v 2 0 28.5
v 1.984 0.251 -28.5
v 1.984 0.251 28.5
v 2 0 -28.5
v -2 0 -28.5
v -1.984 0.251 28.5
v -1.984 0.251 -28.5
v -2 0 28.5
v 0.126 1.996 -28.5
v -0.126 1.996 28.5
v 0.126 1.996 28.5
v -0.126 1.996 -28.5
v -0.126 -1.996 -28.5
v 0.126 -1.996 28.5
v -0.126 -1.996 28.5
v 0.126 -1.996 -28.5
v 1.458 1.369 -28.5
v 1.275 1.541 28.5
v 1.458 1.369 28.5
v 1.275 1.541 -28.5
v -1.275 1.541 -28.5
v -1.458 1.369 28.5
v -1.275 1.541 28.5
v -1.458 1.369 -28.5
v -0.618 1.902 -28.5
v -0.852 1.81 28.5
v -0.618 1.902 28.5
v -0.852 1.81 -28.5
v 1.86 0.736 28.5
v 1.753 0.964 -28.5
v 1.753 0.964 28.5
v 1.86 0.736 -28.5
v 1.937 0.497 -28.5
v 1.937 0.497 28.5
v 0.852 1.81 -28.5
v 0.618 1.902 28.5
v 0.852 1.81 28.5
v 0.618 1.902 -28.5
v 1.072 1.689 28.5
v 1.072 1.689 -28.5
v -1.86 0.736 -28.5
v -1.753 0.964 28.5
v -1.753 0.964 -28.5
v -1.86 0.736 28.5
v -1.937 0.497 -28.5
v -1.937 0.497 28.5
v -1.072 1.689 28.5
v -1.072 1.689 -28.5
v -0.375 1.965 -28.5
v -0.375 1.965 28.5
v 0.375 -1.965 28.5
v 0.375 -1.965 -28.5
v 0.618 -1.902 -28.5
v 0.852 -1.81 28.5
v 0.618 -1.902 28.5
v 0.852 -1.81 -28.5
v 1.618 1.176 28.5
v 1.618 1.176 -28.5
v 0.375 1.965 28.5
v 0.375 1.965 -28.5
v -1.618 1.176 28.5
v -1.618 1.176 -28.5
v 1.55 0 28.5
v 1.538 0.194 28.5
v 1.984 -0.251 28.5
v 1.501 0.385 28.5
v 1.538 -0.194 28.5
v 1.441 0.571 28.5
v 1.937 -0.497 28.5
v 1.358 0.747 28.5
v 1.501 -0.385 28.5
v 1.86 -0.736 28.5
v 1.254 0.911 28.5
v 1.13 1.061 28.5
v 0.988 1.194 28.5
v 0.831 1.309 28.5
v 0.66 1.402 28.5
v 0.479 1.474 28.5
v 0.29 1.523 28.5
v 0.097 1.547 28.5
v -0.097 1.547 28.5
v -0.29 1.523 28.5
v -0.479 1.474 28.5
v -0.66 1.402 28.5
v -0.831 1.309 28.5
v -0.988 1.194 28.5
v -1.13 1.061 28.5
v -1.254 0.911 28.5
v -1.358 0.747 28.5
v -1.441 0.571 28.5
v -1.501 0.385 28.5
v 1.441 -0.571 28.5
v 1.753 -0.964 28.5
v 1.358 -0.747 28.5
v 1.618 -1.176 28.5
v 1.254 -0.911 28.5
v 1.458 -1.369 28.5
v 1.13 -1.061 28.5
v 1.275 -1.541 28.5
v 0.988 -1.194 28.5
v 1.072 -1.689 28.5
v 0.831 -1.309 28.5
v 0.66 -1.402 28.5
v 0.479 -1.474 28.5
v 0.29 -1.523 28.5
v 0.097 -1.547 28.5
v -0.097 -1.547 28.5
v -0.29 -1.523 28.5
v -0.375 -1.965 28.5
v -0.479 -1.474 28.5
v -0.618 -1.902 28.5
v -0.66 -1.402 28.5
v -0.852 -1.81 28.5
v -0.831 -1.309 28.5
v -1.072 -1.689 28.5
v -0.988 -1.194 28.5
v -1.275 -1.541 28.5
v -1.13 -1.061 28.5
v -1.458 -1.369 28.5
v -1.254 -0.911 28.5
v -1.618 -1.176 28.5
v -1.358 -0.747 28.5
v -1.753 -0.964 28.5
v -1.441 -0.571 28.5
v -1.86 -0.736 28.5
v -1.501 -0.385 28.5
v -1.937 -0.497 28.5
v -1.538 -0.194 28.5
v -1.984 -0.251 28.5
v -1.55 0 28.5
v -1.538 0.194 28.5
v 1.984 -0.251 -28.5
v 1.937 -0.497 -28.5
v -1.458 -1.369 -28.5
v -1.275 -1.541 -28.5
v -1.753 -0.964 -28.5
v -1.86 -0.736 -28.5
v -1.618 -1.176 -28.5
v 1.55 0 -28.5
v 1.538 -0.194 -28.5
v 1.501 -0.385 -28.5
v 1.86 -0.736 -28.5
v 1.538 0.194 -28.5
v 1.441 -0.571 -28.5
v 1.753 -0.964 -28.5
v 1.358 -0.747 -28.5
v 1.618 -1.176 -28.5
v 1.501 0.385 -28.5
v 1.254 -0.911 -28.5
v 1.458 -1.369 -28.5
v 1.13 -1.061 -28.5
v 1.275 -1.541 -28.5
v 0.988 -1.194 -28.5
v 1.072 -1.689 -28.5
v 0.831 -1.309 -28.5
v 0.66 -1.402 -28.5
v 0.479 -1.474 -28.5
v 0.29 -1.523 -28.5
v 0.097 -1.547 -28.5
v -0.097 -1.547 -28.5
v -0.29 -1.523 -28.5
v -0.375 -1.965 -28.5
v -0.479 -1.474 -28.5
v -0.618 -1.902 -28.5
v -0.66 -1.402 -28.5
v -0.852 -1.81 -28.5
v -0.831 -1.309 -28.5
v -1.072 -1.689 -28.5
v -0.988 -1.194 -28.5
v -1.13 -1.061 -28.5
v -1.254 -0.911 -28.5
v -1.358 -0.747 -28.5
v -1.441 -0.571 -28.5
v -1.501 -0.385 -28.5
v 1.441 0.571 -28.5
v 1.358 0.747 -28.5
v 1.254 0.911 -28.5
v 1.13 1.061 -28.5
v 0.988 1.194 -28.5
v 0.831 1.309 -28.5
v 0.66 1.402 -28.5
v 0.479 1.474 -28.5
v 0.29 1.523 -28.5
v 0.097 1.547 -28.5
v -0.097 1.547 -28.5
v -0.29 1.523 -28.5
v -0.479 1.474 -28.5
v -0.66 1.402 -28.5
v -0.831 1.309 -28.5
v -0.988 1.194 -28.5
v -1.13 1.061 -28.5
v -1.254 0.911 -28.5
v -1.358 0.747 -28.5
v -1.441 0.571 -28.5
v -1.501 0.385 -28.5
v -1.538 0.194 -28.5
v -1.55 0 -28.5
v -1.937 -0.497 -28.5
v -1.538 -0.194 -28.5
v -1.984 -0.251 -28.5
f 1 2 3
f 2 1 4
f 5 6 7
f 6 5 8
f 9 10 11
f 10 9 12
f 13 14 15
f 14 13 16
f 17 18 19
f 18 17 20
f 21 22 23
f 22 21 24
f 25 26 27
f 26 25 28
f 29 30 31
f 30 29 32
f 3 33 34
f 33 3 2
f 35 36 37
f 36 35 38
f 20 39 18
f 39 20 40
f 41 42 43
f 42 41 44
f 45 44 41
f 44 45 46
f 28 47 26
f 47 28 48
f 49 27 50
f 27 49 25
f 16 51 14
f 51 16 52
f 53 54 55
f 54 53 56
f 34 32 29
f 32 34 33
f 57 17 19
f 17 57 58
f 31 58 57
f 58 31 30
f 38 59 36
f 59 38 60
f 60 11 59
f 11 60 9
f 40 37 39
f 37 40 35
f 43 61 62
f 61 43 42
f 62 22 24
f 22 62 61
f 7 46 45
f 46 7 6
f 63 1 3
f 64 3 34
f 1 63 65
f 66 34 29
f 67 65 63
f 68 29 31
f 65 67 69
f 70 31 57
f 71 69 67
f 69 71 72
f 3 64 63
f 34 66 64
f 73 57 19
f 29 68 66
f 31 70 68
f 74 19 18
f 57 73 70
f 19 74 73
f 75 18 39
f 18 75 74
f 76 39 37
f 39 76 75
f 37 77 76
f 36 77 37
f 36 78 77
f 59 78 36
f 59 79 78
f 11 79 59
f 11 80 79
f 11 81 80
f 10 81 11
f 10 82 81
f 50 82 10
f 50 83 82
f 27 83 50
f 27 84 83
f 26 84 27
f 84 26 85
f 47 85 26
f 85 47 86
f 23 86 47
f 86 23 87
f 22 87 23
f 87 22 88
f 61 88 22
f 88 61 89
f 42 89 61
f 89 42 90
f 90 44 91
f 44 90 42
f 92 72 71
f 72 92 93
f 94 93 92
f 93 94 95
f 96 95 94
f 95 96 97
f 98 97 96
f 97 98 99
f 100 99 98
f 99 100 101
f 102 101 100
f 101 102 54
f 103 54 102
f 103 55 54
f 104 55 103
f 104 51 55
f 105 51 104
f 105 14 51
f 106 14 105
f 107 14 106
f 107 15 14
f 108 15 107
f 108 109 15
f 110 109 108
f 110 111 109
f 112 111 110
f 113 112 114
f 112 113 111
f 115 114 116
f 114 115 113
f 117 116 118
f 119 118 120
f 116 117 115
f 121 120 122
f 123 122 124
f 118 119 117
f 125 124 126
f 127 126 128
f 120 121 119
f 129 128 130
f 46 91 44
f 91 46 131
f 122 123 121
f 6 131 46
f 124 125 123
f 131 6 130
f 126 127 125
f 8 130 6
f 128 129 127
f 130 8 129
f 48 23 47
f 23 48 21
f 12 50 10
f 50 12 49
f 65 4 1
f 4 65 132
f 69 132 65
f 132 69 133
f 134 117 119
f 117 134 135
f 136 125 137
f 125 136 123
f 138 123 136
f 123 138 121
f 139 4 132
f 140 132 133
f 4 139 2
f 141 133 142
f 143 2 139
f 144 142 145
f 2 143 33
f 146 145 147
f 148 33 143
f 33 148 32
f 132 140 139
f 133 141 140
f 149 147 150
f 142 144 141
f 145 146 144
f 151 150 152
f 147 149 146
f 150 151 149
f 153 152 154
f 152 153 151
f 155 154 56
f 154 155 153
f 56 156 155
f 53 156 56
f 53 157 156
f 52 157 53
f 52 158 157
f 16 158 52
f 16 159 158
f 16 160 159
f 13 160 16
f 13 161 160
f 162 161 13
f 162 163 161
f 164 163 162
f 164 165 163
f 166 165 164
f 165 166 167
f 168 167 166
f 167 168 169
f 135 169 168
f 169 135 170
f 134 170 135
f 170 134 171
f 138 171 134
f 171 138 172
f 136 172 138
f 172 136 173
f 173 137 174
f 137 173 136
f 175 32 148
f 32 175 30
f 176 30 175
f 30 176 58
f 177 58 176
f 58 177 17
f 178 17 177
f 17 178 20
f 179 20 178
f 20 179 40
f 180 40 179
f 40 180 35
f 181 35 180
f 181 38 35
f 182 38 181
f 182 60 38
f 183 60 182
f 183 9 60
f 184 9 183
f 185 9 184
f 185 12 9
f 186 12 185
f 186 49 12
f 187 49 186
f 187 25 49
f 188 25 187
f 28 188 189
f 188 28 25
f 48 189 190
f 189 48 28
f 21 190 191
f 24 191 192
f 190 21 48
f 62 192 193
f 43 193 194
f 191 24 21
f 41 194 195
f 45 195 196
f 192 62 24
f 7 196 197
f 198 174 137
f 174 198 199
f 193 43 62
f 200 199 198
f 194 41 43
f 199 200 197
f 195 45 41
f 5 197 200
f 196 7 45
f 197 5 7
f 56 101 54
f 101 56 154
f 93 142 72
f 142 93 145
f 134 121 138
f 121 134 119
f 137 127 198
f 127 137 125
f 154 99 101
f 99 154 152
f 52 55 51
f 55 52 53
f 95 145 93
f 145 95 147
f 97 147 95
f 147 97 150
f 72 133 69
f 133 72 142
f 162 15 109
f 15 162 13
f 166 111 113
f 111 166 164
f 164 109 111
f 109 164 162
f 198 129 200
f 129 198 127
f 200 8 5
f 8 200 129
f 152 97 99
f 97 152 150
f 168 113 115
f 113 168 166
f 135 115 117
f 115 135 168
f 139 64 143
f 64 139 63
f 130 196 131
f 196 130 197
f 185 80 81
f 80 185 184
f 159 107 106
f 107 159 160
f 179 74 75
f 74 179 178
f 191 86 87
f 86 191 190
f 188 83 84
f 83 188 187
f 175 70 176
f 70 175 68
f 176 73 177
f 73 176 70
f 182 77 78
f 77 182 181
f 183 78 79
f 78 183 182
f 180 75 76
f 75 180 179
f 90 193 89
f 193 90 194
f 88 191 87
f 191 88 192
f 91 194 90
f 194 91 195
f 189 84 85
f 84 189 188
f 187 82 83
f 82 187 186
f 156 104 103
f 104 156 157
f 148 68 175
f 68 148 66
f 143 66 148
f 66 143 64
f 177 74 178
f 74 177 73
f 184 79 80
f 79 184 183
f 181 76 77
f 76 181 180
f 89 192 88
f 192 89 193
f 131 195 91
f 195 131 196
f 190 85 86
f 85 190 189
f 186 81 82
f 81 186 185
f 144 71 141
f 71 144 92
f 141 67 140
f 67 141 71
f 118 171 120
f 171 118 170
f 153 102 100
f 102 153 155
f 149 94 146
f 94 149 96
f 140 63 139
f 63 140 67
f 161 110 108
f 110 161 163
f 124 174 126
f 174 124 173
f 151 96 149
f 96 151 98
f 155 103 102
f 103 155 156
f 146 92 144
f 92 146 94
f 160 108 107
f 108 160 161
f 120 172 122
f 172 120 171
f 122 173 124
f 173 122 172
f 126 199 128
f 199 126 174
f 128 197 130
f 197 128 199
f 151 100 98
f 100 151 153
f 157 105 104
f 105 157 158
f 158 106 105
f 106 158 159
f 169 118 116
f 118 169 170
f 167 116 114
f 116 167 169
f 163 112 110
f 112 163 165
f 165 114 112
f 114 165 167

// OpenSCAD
$fn = 50;


difference() {
	union() {
		translate(v = [0, 0, -28.5000000000]) {
			cylinder(h = 57, r = 2.0000000000);
		}
	}
	union() {
		translate(v = [0, 0, -100.0000000000]) {
			cylinder(h = 200, r = 1.5500000000);
		}
	}
}
